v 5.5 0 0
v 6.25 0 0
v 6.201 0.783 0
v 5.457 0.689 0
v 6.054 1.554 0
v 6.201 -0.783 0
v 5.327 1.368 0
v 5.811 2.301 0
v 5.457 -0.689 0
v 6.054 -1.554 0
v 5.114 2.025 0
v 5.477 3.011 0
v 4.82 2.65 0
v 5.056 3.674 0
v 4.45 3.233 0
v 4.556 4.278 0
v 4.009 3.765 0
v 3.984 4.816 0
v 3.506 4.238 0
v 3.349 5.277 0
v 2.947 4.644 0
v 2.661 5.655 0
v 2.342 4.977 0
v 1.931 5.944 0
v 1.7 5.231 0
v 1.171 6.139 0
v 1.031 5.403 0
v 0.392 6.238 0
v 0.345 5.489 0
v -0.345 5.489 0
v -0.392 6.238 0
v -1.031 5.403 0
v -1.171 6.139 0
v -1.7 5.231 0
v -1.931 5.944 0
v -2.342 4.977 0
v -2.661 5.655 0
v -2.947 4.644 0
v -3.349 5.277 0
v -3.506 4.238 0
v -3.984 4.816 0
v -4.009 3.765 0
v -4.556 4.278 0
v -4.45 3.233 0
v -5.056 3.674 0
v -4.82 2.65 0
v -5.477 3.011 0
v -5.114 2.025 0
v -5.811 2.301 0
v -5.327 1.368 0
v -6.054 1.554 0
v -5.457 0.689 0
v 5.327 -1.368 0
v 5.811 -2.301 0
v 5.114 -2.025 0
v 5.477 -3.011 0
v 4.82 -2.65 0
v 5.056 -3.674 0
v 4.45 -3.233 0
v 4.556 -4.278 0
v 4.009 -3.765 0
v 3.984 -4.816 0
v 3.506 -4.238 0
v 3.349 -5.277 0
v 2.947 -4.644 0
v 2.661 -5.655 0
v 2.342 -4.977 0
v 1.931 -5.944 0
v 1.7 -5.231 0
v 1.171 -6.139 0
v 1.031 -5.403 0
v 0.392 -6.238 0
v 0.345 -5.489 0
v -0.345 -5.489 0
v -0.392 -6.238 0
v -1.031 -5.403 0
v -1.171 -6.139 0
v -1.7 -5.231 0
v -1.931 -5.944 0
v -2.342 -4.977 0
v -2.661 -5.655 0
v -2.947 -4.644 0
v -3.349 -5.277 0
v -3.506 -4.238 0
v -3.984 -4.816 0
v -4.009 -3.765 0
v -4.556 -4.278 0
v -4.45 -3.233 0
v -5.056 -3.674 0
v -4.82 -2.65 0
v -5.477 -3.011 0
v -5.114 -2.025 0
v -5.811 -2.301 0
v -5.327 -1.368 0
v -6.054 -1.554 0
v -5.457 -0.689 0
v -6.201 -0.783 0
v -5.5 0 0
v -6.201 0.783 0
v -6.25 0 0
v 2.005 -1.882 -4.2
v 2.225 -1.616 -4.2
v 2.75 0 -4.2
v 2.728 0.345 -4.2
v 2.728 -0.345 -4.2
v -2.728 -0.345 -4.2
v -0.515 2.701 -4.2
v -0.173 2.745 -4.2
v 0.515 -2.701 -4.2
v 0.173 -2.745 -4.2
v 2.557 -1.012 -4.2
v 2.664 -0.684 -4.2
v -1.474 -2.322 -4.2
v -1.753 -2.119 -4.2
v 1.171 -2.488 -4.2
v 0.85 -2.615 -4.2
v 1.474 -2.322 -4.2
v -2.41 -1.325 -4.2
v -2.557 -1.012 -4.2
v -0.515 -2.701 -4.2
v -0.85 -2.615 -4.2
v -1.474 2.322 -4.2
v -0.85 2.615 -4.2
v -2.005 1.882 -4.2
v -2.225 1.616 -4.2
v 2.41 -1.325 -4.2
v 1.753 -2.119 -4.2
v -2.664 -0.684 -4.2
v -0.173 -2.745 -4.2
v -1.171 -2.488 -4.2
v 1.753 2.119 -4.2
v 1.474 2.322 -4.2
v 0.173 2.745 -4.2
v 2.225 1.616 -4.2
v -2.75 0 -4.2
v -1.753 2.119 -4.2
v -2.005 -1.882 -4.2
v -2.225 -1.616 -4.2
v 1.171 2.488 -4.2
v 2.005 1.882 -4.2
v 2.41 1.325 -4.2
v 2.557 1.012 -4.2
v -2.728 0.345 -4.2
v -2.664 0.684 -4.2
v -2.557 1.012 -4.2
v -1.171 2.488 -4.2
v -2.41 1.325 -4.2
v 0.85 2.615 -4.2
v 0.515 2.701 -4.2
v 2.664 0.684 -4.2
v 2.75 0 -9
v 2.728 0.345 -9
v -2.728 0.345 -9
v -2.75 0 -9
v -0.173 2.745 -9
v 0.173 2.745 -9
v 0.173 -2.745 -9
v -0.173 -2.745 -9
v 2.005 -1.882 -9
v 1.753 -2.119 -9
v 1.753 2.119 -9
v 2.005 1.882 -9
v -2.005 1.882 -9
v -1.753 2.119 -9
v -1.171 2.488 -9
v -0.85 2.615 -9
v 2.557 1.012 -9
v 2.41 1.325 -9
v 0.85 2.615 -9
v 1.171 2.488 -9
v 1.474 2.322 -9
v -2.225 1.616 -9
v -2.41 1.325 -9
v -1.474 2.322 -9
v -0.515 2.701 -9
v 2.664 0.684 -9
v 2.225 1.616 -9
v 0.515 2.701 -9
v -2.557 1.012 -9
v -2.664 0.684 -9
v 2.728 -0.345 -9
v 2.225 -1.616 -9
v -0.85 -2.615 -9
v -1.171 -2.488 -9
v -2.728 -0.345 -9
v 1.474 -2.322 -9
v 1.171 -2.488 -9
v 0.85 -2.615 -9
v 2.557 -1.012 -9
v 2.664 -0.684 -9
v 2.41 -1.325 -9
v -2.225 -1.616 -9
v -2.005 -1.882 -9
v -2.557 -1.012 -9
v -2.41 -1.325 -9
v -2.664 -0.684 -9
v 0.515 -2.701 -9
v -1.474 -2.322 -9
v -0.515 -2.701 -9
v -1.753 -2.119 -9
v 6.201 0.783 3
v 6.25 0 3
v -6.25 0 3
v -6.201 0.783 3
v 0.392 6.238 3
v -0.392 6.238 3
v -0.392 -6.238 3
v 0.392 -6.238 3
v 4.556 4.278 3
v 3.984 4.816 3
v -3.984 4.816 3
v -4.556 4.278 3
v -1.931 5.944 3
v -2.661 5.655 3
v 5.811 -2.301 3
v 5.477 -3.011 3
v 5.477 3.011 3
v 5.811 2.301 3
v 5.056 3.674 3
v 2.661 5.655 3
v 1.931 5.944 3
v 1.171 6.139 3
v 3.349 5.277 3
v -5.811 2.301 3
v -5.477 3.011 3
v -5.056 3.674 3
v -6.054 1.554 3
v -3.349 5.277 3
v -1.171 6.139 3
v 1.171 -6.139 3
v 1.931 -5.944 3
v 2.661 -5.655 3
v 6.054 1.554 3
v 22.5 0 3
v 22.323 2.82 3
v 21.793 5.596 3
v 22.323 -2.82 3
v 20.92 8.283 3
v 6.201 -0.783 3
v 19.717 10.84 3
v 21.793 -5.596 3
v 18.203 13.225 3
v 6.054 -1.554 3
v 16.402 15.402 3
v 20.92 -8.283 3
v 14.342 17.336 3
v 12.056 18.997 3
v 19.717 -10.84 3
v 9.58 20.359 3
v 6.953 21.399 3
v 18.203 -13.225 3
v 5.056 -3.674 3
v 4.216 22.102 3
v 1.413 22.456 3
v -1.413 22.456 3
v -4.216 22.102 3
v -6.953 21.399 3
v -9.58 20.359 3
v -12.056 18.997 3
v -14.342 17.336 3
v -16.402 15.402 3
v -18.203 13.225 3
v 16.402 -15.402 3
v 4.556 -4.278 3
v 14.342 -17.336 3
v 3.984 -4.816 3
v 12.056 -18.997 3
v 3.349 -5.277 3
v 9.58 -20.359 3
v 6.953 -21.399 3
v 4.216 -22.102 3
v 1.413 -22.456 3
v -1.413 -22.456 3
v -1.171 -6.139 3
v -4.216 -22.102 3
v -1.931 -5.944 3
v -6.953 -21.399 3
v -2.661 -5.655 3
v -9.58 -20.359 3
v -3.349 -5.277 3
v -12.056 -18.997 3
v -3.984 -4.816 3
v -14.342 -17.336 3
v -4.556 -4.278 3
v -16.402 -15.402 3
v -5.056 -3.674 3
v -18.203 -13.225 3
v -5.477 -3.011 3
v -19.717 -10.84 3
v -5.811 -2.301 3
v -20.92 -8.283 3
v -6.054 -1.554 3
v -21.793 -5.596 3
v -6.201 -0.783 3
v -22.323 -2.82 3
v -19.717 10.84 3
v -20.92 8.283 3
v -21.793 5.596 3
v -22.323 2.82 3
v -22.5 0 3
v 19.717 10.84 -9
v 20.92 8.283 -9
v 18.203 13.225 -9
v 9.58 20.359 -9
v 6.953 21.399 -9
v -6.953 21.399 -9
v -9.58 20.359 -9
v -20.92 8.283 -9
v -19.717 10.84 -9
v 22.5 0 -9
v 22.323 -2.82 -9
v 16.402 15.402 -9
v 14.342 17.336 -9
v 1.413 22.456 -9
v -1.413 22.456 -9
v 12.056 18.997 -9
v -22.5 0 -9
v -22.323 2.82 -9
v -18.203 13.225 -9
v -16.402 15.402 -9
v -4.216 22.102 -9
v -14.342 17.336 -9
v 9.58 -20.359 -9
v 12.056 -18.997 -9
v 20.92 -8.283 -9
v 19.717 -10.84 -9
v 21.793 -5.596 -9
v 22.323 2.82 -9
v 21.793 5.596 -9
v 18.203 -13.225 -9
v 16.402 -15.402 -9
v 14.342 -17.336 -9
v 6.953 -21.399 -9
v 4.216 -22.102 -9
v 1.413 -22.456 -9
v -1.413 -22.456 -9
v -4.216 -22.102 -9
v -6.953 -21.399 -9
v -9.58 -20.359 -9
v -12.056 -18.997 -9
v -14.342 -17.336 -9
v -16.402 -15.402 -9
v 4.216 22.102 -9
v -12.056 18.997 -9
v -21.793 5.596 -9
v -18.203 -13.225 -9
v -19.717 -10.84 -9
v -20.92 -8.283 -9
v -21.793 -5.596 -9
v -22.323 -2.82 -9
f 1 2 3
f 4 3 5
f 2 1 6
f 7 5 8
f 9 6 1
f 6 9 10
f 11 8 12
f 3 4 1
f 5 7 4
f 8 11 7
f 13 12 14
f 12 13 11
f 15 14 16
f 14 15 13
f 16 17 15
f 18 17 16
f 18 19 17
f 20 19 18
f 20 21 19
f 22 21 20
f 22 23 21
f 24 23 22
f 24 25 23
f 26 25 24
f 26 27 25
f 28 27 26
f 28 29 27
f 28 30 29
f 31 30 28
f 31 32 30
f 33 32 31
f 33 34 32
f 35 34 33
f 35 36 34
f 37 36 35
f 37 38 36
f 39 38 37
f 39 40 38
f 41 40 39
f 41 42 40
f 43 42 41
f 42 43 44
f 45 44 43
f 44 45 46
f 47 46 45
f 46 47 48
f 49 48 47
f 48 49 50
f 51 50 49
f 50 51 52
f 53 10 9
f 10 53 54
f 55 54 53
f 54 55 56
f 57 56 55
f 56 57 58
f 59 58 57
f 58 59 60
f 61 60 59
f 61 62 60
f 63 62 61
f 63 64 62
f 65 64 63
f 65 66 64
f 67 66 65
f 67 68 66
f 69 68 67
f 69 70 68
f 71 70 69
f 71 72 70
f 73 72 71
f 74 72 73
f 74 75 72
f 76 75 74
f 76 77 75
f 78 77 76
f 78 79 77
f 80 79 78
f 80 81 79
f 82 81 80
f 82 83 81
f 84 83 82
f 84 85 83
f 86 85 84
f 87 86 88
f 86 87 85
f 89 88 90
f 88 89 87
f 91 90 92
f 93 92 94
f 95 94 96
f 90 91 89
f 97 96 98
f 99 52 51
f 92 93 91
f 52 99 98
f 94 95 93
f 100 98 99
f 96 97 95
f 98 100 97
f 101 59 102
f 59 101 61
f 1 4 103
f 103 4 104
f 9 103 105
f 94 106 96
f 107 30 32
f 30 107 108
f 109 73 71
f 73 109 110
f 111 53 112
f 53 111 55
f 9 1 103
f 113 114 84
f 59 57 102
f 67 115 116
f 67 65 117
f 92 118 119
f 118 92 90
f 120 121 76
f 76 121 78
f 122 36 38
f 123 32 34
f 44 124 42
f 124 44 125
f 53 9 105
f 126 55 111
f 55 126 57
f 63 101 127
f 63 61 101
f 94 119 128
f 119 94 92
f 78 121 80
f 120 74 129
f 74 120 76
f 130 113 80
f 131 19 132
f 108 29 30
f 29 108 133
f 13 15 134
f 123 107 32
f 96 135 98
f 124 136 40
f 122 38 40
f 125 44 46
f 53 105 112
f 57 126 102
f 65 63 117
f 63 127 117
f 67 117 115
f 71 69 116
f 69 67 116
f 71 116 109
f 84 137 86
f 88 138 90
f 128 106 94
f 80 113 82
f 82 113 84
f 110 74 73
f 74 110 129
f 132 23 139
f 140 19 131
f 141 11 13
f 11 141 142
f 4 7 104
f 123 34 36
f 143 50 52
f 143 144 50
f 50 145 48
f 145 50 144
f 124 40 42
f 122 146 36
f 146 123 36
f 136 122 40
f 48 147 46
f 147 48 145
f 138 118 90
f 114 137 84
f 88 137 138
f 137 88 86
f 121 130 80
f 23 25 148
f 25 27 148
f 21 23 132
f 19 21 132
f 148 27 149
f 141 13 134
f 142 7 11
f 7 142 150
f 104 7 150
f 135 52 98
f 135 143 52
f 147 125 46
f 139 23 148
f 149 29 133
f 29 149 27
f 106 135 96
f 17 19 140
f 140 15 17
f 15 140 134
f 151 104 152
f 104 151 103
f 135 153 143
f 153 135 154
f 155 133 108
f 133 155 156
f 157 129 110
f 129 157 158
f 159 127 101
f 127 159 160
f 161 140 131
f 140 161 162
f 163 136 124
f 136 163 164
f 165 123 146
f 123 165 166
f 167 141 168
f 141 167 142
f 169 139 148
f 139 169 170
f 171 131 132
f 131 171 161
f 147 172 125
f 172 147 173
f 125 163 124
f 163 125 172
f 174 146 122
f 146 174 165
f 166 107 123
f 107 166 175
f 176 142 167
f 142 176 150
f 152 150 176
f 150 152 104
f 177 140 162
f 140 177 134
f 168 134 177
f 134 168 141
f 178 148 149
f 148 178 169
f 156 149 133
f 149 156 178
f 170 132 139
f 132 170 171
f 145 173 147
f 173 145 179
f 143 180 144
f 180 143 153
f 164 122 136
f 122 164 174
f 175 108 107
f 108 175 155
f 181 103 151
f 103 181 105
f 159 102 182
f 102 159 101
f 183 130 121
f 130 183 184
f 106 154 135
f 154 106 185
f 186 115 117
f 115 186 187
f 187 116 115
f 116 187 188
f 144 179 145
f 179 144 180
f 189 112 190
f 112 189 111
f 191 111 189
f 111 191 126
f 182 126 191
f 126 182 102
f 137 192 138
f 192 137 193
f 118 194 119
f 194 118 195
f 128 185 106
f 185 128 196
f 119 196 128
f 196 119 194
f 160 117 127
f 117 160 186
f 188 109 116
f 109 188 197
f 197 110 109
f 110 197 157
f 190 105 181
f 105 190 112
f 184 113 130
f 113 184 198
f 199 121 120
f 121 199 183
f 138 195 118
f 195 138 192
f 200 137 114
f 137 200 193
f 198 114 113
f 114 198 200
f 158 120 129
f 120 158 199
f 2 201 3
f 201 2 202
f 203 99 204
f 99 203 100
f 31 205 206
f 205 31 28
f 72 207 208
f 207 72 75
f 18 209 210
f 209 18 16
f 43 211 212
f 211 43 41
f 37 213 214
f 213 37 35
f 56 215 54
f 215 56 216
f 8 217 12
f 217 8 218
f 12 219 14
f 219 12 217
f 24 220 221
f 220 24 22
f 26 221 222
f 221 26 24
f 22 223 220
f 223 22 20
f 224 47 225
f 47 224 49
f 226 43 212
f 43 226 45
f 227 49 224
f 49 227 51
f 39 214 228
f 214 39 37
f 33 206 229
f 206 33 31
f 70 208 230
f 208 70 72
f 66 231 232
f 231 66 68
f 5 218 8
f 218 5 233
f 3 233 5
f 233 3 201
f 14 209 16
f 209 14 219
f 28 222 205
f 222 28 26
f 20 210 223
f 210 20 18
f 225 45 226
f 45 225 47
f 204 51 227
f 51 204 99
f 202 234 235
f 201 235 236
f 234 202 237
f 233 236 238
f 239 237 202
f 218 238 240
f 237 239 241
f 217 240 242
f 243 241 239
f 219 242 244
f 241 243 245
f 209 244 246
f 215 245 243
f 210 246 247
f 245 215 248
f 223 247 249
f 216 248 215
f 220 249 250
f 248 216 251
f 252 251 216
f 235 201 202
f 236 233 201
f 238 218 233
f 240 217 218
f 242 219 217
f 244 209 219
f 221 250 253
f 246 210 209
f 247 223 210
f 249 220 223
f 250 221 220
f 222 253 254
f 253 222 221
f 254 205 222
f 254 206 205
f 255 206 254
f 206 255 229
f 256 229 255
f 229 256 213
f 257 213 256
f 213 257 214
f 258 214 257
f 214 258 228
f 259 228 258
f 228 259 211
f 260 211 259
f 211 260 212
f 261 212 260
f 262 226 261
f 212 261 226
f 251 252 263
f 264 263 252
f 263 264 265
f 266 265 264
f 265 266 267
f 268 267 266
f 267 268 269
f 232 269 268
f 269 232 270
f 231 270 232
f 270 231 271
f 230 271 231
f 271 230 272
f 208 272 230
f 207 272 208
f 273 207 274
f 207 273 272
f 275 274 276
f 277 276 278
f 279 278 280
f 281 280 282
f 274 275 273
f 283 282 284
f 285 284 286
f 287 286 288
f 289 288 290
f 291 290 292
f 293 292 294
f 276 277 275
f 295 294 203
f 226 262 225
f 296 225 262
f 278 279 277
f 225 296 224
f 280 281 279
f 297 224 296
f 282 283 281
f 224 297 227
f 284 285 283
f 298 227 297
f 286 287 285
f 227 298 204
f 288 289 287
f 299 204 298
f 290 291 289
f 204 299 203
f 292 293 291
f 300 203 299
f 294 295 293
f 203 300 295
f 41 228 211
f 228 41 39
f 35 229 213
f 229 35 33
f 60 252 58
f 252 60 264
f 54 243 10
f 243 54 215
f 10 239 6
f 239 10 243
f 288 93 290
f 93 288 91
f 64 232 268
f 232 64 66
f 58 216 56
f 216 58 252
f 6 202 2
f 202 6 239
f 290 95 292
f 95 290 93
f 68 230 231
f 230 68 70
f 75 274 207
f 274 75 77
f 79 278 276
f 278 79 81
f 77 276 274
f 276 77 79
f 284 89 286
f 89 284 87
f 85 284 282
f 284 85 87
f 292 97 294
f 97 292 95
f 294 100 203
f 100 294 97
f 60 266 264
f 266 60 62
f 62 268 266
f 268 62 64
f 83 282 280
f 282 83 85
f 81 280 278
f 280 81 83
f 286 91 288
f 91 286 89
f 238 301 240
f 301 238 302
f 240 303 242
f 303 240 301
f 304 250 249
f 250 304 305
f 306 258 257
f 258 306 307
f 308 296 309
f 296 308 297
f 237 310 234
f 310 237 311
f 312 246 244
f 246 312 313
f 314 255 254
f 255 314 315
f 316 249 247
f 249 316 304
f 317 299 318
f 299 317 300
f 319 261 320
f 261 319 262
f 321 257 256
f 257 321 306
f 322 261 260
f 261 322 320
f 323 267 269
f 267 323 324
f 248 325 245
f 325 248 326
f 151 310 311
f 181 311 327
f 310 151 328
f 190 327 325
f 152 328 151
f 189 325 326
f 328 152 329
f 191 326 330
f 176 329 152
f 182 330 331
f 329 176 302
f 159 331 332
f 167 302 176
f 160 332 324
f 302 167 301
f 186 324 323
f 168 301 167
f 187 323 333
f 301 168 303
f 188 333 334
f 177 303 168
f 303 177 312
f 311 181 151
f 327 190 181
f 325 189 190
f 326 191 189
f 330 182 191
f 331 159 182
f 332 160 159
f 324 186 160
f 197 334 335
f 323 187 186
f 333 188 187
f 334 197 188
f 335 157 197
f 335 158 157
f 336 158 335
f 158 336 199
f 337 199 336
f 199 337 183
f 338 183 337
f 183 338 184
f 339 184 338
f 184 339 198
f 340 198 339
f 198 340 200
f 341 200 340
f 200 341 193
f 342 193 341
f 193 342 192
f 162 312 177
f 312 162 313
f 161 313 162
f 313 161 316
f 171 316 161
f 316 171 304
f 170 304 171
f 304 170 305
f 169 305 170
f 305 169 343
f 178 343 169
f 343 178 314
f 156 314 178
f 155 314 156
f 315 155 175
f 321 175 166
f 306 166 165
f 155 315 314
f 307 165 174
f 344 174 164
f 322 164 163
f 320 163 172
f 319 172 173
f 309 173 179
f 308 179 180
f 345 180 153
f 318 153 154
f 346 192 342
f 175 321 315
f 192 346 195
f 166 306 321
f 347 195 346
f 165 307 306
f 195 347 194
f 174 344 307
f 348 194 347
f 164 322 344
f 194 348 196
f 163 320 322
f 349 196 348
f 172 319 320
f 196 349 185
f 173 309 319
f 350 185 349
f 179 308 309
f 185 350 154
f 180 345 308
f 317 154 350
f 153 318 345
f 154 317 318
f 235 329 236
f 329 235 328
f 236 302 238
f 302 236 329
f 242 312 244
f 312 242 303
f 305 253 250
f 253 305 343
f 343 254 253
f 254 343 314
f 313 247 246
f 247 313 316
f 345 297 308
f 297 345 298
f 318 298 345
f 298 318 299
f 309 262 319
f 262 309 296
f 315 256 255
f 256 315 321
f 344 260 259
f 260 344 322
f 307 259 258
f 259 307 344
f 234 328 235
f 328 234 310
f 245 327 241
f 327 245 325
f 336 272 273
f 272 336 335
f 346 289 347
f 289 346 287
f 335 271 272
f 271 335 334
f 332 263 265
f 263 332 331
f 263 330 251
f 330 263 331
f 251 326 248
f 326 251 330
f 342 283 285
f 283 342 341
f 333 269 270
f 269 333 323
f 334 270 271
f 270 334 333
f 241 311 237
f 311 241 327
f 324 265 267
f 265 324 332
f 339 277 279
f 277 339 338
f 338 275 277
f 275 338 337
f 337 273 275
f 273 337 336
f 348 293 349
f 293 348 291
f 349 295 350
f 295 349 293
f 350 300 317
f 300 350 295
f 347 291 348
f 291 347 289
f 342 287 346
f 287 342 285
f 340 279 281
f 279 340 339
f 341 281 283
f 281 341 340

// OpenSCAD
$fn = 50;


difference() {
	union() {
		translate(v = [0, 0, -9.0000000000]) {
			cylinder(h = 12, r = 22.5000000000);
		}
	}
	union() {
		translate(v = [0, 0, 0]) {
			rotate(a = [0, 0, 0]) {
				difference() {
					union() {
						translate(v = [0, 0, -12.0000000000]) {
							cylinder(h = 12, r = 2.2500000000);
						}
						translate(v = [0, 0, -4.2000000000]) {
							cylinder(h = 4.2000000000, r1 = 2.7500000000, r2 = 5.5000000000);
						}
						translate(v = [0, 0, -12.0000000000]) {
							cylinder(h = 12, r = 2.7500000000);
						}
						translate(v = [0, 0, -12.0000000000]) {
							cylinder(h = 12, r = 2.2500000000);
						}
					}
					union();
				}
			}
		}
		#cylinder(h = 3, r = 6.2500000000);
	}
}
